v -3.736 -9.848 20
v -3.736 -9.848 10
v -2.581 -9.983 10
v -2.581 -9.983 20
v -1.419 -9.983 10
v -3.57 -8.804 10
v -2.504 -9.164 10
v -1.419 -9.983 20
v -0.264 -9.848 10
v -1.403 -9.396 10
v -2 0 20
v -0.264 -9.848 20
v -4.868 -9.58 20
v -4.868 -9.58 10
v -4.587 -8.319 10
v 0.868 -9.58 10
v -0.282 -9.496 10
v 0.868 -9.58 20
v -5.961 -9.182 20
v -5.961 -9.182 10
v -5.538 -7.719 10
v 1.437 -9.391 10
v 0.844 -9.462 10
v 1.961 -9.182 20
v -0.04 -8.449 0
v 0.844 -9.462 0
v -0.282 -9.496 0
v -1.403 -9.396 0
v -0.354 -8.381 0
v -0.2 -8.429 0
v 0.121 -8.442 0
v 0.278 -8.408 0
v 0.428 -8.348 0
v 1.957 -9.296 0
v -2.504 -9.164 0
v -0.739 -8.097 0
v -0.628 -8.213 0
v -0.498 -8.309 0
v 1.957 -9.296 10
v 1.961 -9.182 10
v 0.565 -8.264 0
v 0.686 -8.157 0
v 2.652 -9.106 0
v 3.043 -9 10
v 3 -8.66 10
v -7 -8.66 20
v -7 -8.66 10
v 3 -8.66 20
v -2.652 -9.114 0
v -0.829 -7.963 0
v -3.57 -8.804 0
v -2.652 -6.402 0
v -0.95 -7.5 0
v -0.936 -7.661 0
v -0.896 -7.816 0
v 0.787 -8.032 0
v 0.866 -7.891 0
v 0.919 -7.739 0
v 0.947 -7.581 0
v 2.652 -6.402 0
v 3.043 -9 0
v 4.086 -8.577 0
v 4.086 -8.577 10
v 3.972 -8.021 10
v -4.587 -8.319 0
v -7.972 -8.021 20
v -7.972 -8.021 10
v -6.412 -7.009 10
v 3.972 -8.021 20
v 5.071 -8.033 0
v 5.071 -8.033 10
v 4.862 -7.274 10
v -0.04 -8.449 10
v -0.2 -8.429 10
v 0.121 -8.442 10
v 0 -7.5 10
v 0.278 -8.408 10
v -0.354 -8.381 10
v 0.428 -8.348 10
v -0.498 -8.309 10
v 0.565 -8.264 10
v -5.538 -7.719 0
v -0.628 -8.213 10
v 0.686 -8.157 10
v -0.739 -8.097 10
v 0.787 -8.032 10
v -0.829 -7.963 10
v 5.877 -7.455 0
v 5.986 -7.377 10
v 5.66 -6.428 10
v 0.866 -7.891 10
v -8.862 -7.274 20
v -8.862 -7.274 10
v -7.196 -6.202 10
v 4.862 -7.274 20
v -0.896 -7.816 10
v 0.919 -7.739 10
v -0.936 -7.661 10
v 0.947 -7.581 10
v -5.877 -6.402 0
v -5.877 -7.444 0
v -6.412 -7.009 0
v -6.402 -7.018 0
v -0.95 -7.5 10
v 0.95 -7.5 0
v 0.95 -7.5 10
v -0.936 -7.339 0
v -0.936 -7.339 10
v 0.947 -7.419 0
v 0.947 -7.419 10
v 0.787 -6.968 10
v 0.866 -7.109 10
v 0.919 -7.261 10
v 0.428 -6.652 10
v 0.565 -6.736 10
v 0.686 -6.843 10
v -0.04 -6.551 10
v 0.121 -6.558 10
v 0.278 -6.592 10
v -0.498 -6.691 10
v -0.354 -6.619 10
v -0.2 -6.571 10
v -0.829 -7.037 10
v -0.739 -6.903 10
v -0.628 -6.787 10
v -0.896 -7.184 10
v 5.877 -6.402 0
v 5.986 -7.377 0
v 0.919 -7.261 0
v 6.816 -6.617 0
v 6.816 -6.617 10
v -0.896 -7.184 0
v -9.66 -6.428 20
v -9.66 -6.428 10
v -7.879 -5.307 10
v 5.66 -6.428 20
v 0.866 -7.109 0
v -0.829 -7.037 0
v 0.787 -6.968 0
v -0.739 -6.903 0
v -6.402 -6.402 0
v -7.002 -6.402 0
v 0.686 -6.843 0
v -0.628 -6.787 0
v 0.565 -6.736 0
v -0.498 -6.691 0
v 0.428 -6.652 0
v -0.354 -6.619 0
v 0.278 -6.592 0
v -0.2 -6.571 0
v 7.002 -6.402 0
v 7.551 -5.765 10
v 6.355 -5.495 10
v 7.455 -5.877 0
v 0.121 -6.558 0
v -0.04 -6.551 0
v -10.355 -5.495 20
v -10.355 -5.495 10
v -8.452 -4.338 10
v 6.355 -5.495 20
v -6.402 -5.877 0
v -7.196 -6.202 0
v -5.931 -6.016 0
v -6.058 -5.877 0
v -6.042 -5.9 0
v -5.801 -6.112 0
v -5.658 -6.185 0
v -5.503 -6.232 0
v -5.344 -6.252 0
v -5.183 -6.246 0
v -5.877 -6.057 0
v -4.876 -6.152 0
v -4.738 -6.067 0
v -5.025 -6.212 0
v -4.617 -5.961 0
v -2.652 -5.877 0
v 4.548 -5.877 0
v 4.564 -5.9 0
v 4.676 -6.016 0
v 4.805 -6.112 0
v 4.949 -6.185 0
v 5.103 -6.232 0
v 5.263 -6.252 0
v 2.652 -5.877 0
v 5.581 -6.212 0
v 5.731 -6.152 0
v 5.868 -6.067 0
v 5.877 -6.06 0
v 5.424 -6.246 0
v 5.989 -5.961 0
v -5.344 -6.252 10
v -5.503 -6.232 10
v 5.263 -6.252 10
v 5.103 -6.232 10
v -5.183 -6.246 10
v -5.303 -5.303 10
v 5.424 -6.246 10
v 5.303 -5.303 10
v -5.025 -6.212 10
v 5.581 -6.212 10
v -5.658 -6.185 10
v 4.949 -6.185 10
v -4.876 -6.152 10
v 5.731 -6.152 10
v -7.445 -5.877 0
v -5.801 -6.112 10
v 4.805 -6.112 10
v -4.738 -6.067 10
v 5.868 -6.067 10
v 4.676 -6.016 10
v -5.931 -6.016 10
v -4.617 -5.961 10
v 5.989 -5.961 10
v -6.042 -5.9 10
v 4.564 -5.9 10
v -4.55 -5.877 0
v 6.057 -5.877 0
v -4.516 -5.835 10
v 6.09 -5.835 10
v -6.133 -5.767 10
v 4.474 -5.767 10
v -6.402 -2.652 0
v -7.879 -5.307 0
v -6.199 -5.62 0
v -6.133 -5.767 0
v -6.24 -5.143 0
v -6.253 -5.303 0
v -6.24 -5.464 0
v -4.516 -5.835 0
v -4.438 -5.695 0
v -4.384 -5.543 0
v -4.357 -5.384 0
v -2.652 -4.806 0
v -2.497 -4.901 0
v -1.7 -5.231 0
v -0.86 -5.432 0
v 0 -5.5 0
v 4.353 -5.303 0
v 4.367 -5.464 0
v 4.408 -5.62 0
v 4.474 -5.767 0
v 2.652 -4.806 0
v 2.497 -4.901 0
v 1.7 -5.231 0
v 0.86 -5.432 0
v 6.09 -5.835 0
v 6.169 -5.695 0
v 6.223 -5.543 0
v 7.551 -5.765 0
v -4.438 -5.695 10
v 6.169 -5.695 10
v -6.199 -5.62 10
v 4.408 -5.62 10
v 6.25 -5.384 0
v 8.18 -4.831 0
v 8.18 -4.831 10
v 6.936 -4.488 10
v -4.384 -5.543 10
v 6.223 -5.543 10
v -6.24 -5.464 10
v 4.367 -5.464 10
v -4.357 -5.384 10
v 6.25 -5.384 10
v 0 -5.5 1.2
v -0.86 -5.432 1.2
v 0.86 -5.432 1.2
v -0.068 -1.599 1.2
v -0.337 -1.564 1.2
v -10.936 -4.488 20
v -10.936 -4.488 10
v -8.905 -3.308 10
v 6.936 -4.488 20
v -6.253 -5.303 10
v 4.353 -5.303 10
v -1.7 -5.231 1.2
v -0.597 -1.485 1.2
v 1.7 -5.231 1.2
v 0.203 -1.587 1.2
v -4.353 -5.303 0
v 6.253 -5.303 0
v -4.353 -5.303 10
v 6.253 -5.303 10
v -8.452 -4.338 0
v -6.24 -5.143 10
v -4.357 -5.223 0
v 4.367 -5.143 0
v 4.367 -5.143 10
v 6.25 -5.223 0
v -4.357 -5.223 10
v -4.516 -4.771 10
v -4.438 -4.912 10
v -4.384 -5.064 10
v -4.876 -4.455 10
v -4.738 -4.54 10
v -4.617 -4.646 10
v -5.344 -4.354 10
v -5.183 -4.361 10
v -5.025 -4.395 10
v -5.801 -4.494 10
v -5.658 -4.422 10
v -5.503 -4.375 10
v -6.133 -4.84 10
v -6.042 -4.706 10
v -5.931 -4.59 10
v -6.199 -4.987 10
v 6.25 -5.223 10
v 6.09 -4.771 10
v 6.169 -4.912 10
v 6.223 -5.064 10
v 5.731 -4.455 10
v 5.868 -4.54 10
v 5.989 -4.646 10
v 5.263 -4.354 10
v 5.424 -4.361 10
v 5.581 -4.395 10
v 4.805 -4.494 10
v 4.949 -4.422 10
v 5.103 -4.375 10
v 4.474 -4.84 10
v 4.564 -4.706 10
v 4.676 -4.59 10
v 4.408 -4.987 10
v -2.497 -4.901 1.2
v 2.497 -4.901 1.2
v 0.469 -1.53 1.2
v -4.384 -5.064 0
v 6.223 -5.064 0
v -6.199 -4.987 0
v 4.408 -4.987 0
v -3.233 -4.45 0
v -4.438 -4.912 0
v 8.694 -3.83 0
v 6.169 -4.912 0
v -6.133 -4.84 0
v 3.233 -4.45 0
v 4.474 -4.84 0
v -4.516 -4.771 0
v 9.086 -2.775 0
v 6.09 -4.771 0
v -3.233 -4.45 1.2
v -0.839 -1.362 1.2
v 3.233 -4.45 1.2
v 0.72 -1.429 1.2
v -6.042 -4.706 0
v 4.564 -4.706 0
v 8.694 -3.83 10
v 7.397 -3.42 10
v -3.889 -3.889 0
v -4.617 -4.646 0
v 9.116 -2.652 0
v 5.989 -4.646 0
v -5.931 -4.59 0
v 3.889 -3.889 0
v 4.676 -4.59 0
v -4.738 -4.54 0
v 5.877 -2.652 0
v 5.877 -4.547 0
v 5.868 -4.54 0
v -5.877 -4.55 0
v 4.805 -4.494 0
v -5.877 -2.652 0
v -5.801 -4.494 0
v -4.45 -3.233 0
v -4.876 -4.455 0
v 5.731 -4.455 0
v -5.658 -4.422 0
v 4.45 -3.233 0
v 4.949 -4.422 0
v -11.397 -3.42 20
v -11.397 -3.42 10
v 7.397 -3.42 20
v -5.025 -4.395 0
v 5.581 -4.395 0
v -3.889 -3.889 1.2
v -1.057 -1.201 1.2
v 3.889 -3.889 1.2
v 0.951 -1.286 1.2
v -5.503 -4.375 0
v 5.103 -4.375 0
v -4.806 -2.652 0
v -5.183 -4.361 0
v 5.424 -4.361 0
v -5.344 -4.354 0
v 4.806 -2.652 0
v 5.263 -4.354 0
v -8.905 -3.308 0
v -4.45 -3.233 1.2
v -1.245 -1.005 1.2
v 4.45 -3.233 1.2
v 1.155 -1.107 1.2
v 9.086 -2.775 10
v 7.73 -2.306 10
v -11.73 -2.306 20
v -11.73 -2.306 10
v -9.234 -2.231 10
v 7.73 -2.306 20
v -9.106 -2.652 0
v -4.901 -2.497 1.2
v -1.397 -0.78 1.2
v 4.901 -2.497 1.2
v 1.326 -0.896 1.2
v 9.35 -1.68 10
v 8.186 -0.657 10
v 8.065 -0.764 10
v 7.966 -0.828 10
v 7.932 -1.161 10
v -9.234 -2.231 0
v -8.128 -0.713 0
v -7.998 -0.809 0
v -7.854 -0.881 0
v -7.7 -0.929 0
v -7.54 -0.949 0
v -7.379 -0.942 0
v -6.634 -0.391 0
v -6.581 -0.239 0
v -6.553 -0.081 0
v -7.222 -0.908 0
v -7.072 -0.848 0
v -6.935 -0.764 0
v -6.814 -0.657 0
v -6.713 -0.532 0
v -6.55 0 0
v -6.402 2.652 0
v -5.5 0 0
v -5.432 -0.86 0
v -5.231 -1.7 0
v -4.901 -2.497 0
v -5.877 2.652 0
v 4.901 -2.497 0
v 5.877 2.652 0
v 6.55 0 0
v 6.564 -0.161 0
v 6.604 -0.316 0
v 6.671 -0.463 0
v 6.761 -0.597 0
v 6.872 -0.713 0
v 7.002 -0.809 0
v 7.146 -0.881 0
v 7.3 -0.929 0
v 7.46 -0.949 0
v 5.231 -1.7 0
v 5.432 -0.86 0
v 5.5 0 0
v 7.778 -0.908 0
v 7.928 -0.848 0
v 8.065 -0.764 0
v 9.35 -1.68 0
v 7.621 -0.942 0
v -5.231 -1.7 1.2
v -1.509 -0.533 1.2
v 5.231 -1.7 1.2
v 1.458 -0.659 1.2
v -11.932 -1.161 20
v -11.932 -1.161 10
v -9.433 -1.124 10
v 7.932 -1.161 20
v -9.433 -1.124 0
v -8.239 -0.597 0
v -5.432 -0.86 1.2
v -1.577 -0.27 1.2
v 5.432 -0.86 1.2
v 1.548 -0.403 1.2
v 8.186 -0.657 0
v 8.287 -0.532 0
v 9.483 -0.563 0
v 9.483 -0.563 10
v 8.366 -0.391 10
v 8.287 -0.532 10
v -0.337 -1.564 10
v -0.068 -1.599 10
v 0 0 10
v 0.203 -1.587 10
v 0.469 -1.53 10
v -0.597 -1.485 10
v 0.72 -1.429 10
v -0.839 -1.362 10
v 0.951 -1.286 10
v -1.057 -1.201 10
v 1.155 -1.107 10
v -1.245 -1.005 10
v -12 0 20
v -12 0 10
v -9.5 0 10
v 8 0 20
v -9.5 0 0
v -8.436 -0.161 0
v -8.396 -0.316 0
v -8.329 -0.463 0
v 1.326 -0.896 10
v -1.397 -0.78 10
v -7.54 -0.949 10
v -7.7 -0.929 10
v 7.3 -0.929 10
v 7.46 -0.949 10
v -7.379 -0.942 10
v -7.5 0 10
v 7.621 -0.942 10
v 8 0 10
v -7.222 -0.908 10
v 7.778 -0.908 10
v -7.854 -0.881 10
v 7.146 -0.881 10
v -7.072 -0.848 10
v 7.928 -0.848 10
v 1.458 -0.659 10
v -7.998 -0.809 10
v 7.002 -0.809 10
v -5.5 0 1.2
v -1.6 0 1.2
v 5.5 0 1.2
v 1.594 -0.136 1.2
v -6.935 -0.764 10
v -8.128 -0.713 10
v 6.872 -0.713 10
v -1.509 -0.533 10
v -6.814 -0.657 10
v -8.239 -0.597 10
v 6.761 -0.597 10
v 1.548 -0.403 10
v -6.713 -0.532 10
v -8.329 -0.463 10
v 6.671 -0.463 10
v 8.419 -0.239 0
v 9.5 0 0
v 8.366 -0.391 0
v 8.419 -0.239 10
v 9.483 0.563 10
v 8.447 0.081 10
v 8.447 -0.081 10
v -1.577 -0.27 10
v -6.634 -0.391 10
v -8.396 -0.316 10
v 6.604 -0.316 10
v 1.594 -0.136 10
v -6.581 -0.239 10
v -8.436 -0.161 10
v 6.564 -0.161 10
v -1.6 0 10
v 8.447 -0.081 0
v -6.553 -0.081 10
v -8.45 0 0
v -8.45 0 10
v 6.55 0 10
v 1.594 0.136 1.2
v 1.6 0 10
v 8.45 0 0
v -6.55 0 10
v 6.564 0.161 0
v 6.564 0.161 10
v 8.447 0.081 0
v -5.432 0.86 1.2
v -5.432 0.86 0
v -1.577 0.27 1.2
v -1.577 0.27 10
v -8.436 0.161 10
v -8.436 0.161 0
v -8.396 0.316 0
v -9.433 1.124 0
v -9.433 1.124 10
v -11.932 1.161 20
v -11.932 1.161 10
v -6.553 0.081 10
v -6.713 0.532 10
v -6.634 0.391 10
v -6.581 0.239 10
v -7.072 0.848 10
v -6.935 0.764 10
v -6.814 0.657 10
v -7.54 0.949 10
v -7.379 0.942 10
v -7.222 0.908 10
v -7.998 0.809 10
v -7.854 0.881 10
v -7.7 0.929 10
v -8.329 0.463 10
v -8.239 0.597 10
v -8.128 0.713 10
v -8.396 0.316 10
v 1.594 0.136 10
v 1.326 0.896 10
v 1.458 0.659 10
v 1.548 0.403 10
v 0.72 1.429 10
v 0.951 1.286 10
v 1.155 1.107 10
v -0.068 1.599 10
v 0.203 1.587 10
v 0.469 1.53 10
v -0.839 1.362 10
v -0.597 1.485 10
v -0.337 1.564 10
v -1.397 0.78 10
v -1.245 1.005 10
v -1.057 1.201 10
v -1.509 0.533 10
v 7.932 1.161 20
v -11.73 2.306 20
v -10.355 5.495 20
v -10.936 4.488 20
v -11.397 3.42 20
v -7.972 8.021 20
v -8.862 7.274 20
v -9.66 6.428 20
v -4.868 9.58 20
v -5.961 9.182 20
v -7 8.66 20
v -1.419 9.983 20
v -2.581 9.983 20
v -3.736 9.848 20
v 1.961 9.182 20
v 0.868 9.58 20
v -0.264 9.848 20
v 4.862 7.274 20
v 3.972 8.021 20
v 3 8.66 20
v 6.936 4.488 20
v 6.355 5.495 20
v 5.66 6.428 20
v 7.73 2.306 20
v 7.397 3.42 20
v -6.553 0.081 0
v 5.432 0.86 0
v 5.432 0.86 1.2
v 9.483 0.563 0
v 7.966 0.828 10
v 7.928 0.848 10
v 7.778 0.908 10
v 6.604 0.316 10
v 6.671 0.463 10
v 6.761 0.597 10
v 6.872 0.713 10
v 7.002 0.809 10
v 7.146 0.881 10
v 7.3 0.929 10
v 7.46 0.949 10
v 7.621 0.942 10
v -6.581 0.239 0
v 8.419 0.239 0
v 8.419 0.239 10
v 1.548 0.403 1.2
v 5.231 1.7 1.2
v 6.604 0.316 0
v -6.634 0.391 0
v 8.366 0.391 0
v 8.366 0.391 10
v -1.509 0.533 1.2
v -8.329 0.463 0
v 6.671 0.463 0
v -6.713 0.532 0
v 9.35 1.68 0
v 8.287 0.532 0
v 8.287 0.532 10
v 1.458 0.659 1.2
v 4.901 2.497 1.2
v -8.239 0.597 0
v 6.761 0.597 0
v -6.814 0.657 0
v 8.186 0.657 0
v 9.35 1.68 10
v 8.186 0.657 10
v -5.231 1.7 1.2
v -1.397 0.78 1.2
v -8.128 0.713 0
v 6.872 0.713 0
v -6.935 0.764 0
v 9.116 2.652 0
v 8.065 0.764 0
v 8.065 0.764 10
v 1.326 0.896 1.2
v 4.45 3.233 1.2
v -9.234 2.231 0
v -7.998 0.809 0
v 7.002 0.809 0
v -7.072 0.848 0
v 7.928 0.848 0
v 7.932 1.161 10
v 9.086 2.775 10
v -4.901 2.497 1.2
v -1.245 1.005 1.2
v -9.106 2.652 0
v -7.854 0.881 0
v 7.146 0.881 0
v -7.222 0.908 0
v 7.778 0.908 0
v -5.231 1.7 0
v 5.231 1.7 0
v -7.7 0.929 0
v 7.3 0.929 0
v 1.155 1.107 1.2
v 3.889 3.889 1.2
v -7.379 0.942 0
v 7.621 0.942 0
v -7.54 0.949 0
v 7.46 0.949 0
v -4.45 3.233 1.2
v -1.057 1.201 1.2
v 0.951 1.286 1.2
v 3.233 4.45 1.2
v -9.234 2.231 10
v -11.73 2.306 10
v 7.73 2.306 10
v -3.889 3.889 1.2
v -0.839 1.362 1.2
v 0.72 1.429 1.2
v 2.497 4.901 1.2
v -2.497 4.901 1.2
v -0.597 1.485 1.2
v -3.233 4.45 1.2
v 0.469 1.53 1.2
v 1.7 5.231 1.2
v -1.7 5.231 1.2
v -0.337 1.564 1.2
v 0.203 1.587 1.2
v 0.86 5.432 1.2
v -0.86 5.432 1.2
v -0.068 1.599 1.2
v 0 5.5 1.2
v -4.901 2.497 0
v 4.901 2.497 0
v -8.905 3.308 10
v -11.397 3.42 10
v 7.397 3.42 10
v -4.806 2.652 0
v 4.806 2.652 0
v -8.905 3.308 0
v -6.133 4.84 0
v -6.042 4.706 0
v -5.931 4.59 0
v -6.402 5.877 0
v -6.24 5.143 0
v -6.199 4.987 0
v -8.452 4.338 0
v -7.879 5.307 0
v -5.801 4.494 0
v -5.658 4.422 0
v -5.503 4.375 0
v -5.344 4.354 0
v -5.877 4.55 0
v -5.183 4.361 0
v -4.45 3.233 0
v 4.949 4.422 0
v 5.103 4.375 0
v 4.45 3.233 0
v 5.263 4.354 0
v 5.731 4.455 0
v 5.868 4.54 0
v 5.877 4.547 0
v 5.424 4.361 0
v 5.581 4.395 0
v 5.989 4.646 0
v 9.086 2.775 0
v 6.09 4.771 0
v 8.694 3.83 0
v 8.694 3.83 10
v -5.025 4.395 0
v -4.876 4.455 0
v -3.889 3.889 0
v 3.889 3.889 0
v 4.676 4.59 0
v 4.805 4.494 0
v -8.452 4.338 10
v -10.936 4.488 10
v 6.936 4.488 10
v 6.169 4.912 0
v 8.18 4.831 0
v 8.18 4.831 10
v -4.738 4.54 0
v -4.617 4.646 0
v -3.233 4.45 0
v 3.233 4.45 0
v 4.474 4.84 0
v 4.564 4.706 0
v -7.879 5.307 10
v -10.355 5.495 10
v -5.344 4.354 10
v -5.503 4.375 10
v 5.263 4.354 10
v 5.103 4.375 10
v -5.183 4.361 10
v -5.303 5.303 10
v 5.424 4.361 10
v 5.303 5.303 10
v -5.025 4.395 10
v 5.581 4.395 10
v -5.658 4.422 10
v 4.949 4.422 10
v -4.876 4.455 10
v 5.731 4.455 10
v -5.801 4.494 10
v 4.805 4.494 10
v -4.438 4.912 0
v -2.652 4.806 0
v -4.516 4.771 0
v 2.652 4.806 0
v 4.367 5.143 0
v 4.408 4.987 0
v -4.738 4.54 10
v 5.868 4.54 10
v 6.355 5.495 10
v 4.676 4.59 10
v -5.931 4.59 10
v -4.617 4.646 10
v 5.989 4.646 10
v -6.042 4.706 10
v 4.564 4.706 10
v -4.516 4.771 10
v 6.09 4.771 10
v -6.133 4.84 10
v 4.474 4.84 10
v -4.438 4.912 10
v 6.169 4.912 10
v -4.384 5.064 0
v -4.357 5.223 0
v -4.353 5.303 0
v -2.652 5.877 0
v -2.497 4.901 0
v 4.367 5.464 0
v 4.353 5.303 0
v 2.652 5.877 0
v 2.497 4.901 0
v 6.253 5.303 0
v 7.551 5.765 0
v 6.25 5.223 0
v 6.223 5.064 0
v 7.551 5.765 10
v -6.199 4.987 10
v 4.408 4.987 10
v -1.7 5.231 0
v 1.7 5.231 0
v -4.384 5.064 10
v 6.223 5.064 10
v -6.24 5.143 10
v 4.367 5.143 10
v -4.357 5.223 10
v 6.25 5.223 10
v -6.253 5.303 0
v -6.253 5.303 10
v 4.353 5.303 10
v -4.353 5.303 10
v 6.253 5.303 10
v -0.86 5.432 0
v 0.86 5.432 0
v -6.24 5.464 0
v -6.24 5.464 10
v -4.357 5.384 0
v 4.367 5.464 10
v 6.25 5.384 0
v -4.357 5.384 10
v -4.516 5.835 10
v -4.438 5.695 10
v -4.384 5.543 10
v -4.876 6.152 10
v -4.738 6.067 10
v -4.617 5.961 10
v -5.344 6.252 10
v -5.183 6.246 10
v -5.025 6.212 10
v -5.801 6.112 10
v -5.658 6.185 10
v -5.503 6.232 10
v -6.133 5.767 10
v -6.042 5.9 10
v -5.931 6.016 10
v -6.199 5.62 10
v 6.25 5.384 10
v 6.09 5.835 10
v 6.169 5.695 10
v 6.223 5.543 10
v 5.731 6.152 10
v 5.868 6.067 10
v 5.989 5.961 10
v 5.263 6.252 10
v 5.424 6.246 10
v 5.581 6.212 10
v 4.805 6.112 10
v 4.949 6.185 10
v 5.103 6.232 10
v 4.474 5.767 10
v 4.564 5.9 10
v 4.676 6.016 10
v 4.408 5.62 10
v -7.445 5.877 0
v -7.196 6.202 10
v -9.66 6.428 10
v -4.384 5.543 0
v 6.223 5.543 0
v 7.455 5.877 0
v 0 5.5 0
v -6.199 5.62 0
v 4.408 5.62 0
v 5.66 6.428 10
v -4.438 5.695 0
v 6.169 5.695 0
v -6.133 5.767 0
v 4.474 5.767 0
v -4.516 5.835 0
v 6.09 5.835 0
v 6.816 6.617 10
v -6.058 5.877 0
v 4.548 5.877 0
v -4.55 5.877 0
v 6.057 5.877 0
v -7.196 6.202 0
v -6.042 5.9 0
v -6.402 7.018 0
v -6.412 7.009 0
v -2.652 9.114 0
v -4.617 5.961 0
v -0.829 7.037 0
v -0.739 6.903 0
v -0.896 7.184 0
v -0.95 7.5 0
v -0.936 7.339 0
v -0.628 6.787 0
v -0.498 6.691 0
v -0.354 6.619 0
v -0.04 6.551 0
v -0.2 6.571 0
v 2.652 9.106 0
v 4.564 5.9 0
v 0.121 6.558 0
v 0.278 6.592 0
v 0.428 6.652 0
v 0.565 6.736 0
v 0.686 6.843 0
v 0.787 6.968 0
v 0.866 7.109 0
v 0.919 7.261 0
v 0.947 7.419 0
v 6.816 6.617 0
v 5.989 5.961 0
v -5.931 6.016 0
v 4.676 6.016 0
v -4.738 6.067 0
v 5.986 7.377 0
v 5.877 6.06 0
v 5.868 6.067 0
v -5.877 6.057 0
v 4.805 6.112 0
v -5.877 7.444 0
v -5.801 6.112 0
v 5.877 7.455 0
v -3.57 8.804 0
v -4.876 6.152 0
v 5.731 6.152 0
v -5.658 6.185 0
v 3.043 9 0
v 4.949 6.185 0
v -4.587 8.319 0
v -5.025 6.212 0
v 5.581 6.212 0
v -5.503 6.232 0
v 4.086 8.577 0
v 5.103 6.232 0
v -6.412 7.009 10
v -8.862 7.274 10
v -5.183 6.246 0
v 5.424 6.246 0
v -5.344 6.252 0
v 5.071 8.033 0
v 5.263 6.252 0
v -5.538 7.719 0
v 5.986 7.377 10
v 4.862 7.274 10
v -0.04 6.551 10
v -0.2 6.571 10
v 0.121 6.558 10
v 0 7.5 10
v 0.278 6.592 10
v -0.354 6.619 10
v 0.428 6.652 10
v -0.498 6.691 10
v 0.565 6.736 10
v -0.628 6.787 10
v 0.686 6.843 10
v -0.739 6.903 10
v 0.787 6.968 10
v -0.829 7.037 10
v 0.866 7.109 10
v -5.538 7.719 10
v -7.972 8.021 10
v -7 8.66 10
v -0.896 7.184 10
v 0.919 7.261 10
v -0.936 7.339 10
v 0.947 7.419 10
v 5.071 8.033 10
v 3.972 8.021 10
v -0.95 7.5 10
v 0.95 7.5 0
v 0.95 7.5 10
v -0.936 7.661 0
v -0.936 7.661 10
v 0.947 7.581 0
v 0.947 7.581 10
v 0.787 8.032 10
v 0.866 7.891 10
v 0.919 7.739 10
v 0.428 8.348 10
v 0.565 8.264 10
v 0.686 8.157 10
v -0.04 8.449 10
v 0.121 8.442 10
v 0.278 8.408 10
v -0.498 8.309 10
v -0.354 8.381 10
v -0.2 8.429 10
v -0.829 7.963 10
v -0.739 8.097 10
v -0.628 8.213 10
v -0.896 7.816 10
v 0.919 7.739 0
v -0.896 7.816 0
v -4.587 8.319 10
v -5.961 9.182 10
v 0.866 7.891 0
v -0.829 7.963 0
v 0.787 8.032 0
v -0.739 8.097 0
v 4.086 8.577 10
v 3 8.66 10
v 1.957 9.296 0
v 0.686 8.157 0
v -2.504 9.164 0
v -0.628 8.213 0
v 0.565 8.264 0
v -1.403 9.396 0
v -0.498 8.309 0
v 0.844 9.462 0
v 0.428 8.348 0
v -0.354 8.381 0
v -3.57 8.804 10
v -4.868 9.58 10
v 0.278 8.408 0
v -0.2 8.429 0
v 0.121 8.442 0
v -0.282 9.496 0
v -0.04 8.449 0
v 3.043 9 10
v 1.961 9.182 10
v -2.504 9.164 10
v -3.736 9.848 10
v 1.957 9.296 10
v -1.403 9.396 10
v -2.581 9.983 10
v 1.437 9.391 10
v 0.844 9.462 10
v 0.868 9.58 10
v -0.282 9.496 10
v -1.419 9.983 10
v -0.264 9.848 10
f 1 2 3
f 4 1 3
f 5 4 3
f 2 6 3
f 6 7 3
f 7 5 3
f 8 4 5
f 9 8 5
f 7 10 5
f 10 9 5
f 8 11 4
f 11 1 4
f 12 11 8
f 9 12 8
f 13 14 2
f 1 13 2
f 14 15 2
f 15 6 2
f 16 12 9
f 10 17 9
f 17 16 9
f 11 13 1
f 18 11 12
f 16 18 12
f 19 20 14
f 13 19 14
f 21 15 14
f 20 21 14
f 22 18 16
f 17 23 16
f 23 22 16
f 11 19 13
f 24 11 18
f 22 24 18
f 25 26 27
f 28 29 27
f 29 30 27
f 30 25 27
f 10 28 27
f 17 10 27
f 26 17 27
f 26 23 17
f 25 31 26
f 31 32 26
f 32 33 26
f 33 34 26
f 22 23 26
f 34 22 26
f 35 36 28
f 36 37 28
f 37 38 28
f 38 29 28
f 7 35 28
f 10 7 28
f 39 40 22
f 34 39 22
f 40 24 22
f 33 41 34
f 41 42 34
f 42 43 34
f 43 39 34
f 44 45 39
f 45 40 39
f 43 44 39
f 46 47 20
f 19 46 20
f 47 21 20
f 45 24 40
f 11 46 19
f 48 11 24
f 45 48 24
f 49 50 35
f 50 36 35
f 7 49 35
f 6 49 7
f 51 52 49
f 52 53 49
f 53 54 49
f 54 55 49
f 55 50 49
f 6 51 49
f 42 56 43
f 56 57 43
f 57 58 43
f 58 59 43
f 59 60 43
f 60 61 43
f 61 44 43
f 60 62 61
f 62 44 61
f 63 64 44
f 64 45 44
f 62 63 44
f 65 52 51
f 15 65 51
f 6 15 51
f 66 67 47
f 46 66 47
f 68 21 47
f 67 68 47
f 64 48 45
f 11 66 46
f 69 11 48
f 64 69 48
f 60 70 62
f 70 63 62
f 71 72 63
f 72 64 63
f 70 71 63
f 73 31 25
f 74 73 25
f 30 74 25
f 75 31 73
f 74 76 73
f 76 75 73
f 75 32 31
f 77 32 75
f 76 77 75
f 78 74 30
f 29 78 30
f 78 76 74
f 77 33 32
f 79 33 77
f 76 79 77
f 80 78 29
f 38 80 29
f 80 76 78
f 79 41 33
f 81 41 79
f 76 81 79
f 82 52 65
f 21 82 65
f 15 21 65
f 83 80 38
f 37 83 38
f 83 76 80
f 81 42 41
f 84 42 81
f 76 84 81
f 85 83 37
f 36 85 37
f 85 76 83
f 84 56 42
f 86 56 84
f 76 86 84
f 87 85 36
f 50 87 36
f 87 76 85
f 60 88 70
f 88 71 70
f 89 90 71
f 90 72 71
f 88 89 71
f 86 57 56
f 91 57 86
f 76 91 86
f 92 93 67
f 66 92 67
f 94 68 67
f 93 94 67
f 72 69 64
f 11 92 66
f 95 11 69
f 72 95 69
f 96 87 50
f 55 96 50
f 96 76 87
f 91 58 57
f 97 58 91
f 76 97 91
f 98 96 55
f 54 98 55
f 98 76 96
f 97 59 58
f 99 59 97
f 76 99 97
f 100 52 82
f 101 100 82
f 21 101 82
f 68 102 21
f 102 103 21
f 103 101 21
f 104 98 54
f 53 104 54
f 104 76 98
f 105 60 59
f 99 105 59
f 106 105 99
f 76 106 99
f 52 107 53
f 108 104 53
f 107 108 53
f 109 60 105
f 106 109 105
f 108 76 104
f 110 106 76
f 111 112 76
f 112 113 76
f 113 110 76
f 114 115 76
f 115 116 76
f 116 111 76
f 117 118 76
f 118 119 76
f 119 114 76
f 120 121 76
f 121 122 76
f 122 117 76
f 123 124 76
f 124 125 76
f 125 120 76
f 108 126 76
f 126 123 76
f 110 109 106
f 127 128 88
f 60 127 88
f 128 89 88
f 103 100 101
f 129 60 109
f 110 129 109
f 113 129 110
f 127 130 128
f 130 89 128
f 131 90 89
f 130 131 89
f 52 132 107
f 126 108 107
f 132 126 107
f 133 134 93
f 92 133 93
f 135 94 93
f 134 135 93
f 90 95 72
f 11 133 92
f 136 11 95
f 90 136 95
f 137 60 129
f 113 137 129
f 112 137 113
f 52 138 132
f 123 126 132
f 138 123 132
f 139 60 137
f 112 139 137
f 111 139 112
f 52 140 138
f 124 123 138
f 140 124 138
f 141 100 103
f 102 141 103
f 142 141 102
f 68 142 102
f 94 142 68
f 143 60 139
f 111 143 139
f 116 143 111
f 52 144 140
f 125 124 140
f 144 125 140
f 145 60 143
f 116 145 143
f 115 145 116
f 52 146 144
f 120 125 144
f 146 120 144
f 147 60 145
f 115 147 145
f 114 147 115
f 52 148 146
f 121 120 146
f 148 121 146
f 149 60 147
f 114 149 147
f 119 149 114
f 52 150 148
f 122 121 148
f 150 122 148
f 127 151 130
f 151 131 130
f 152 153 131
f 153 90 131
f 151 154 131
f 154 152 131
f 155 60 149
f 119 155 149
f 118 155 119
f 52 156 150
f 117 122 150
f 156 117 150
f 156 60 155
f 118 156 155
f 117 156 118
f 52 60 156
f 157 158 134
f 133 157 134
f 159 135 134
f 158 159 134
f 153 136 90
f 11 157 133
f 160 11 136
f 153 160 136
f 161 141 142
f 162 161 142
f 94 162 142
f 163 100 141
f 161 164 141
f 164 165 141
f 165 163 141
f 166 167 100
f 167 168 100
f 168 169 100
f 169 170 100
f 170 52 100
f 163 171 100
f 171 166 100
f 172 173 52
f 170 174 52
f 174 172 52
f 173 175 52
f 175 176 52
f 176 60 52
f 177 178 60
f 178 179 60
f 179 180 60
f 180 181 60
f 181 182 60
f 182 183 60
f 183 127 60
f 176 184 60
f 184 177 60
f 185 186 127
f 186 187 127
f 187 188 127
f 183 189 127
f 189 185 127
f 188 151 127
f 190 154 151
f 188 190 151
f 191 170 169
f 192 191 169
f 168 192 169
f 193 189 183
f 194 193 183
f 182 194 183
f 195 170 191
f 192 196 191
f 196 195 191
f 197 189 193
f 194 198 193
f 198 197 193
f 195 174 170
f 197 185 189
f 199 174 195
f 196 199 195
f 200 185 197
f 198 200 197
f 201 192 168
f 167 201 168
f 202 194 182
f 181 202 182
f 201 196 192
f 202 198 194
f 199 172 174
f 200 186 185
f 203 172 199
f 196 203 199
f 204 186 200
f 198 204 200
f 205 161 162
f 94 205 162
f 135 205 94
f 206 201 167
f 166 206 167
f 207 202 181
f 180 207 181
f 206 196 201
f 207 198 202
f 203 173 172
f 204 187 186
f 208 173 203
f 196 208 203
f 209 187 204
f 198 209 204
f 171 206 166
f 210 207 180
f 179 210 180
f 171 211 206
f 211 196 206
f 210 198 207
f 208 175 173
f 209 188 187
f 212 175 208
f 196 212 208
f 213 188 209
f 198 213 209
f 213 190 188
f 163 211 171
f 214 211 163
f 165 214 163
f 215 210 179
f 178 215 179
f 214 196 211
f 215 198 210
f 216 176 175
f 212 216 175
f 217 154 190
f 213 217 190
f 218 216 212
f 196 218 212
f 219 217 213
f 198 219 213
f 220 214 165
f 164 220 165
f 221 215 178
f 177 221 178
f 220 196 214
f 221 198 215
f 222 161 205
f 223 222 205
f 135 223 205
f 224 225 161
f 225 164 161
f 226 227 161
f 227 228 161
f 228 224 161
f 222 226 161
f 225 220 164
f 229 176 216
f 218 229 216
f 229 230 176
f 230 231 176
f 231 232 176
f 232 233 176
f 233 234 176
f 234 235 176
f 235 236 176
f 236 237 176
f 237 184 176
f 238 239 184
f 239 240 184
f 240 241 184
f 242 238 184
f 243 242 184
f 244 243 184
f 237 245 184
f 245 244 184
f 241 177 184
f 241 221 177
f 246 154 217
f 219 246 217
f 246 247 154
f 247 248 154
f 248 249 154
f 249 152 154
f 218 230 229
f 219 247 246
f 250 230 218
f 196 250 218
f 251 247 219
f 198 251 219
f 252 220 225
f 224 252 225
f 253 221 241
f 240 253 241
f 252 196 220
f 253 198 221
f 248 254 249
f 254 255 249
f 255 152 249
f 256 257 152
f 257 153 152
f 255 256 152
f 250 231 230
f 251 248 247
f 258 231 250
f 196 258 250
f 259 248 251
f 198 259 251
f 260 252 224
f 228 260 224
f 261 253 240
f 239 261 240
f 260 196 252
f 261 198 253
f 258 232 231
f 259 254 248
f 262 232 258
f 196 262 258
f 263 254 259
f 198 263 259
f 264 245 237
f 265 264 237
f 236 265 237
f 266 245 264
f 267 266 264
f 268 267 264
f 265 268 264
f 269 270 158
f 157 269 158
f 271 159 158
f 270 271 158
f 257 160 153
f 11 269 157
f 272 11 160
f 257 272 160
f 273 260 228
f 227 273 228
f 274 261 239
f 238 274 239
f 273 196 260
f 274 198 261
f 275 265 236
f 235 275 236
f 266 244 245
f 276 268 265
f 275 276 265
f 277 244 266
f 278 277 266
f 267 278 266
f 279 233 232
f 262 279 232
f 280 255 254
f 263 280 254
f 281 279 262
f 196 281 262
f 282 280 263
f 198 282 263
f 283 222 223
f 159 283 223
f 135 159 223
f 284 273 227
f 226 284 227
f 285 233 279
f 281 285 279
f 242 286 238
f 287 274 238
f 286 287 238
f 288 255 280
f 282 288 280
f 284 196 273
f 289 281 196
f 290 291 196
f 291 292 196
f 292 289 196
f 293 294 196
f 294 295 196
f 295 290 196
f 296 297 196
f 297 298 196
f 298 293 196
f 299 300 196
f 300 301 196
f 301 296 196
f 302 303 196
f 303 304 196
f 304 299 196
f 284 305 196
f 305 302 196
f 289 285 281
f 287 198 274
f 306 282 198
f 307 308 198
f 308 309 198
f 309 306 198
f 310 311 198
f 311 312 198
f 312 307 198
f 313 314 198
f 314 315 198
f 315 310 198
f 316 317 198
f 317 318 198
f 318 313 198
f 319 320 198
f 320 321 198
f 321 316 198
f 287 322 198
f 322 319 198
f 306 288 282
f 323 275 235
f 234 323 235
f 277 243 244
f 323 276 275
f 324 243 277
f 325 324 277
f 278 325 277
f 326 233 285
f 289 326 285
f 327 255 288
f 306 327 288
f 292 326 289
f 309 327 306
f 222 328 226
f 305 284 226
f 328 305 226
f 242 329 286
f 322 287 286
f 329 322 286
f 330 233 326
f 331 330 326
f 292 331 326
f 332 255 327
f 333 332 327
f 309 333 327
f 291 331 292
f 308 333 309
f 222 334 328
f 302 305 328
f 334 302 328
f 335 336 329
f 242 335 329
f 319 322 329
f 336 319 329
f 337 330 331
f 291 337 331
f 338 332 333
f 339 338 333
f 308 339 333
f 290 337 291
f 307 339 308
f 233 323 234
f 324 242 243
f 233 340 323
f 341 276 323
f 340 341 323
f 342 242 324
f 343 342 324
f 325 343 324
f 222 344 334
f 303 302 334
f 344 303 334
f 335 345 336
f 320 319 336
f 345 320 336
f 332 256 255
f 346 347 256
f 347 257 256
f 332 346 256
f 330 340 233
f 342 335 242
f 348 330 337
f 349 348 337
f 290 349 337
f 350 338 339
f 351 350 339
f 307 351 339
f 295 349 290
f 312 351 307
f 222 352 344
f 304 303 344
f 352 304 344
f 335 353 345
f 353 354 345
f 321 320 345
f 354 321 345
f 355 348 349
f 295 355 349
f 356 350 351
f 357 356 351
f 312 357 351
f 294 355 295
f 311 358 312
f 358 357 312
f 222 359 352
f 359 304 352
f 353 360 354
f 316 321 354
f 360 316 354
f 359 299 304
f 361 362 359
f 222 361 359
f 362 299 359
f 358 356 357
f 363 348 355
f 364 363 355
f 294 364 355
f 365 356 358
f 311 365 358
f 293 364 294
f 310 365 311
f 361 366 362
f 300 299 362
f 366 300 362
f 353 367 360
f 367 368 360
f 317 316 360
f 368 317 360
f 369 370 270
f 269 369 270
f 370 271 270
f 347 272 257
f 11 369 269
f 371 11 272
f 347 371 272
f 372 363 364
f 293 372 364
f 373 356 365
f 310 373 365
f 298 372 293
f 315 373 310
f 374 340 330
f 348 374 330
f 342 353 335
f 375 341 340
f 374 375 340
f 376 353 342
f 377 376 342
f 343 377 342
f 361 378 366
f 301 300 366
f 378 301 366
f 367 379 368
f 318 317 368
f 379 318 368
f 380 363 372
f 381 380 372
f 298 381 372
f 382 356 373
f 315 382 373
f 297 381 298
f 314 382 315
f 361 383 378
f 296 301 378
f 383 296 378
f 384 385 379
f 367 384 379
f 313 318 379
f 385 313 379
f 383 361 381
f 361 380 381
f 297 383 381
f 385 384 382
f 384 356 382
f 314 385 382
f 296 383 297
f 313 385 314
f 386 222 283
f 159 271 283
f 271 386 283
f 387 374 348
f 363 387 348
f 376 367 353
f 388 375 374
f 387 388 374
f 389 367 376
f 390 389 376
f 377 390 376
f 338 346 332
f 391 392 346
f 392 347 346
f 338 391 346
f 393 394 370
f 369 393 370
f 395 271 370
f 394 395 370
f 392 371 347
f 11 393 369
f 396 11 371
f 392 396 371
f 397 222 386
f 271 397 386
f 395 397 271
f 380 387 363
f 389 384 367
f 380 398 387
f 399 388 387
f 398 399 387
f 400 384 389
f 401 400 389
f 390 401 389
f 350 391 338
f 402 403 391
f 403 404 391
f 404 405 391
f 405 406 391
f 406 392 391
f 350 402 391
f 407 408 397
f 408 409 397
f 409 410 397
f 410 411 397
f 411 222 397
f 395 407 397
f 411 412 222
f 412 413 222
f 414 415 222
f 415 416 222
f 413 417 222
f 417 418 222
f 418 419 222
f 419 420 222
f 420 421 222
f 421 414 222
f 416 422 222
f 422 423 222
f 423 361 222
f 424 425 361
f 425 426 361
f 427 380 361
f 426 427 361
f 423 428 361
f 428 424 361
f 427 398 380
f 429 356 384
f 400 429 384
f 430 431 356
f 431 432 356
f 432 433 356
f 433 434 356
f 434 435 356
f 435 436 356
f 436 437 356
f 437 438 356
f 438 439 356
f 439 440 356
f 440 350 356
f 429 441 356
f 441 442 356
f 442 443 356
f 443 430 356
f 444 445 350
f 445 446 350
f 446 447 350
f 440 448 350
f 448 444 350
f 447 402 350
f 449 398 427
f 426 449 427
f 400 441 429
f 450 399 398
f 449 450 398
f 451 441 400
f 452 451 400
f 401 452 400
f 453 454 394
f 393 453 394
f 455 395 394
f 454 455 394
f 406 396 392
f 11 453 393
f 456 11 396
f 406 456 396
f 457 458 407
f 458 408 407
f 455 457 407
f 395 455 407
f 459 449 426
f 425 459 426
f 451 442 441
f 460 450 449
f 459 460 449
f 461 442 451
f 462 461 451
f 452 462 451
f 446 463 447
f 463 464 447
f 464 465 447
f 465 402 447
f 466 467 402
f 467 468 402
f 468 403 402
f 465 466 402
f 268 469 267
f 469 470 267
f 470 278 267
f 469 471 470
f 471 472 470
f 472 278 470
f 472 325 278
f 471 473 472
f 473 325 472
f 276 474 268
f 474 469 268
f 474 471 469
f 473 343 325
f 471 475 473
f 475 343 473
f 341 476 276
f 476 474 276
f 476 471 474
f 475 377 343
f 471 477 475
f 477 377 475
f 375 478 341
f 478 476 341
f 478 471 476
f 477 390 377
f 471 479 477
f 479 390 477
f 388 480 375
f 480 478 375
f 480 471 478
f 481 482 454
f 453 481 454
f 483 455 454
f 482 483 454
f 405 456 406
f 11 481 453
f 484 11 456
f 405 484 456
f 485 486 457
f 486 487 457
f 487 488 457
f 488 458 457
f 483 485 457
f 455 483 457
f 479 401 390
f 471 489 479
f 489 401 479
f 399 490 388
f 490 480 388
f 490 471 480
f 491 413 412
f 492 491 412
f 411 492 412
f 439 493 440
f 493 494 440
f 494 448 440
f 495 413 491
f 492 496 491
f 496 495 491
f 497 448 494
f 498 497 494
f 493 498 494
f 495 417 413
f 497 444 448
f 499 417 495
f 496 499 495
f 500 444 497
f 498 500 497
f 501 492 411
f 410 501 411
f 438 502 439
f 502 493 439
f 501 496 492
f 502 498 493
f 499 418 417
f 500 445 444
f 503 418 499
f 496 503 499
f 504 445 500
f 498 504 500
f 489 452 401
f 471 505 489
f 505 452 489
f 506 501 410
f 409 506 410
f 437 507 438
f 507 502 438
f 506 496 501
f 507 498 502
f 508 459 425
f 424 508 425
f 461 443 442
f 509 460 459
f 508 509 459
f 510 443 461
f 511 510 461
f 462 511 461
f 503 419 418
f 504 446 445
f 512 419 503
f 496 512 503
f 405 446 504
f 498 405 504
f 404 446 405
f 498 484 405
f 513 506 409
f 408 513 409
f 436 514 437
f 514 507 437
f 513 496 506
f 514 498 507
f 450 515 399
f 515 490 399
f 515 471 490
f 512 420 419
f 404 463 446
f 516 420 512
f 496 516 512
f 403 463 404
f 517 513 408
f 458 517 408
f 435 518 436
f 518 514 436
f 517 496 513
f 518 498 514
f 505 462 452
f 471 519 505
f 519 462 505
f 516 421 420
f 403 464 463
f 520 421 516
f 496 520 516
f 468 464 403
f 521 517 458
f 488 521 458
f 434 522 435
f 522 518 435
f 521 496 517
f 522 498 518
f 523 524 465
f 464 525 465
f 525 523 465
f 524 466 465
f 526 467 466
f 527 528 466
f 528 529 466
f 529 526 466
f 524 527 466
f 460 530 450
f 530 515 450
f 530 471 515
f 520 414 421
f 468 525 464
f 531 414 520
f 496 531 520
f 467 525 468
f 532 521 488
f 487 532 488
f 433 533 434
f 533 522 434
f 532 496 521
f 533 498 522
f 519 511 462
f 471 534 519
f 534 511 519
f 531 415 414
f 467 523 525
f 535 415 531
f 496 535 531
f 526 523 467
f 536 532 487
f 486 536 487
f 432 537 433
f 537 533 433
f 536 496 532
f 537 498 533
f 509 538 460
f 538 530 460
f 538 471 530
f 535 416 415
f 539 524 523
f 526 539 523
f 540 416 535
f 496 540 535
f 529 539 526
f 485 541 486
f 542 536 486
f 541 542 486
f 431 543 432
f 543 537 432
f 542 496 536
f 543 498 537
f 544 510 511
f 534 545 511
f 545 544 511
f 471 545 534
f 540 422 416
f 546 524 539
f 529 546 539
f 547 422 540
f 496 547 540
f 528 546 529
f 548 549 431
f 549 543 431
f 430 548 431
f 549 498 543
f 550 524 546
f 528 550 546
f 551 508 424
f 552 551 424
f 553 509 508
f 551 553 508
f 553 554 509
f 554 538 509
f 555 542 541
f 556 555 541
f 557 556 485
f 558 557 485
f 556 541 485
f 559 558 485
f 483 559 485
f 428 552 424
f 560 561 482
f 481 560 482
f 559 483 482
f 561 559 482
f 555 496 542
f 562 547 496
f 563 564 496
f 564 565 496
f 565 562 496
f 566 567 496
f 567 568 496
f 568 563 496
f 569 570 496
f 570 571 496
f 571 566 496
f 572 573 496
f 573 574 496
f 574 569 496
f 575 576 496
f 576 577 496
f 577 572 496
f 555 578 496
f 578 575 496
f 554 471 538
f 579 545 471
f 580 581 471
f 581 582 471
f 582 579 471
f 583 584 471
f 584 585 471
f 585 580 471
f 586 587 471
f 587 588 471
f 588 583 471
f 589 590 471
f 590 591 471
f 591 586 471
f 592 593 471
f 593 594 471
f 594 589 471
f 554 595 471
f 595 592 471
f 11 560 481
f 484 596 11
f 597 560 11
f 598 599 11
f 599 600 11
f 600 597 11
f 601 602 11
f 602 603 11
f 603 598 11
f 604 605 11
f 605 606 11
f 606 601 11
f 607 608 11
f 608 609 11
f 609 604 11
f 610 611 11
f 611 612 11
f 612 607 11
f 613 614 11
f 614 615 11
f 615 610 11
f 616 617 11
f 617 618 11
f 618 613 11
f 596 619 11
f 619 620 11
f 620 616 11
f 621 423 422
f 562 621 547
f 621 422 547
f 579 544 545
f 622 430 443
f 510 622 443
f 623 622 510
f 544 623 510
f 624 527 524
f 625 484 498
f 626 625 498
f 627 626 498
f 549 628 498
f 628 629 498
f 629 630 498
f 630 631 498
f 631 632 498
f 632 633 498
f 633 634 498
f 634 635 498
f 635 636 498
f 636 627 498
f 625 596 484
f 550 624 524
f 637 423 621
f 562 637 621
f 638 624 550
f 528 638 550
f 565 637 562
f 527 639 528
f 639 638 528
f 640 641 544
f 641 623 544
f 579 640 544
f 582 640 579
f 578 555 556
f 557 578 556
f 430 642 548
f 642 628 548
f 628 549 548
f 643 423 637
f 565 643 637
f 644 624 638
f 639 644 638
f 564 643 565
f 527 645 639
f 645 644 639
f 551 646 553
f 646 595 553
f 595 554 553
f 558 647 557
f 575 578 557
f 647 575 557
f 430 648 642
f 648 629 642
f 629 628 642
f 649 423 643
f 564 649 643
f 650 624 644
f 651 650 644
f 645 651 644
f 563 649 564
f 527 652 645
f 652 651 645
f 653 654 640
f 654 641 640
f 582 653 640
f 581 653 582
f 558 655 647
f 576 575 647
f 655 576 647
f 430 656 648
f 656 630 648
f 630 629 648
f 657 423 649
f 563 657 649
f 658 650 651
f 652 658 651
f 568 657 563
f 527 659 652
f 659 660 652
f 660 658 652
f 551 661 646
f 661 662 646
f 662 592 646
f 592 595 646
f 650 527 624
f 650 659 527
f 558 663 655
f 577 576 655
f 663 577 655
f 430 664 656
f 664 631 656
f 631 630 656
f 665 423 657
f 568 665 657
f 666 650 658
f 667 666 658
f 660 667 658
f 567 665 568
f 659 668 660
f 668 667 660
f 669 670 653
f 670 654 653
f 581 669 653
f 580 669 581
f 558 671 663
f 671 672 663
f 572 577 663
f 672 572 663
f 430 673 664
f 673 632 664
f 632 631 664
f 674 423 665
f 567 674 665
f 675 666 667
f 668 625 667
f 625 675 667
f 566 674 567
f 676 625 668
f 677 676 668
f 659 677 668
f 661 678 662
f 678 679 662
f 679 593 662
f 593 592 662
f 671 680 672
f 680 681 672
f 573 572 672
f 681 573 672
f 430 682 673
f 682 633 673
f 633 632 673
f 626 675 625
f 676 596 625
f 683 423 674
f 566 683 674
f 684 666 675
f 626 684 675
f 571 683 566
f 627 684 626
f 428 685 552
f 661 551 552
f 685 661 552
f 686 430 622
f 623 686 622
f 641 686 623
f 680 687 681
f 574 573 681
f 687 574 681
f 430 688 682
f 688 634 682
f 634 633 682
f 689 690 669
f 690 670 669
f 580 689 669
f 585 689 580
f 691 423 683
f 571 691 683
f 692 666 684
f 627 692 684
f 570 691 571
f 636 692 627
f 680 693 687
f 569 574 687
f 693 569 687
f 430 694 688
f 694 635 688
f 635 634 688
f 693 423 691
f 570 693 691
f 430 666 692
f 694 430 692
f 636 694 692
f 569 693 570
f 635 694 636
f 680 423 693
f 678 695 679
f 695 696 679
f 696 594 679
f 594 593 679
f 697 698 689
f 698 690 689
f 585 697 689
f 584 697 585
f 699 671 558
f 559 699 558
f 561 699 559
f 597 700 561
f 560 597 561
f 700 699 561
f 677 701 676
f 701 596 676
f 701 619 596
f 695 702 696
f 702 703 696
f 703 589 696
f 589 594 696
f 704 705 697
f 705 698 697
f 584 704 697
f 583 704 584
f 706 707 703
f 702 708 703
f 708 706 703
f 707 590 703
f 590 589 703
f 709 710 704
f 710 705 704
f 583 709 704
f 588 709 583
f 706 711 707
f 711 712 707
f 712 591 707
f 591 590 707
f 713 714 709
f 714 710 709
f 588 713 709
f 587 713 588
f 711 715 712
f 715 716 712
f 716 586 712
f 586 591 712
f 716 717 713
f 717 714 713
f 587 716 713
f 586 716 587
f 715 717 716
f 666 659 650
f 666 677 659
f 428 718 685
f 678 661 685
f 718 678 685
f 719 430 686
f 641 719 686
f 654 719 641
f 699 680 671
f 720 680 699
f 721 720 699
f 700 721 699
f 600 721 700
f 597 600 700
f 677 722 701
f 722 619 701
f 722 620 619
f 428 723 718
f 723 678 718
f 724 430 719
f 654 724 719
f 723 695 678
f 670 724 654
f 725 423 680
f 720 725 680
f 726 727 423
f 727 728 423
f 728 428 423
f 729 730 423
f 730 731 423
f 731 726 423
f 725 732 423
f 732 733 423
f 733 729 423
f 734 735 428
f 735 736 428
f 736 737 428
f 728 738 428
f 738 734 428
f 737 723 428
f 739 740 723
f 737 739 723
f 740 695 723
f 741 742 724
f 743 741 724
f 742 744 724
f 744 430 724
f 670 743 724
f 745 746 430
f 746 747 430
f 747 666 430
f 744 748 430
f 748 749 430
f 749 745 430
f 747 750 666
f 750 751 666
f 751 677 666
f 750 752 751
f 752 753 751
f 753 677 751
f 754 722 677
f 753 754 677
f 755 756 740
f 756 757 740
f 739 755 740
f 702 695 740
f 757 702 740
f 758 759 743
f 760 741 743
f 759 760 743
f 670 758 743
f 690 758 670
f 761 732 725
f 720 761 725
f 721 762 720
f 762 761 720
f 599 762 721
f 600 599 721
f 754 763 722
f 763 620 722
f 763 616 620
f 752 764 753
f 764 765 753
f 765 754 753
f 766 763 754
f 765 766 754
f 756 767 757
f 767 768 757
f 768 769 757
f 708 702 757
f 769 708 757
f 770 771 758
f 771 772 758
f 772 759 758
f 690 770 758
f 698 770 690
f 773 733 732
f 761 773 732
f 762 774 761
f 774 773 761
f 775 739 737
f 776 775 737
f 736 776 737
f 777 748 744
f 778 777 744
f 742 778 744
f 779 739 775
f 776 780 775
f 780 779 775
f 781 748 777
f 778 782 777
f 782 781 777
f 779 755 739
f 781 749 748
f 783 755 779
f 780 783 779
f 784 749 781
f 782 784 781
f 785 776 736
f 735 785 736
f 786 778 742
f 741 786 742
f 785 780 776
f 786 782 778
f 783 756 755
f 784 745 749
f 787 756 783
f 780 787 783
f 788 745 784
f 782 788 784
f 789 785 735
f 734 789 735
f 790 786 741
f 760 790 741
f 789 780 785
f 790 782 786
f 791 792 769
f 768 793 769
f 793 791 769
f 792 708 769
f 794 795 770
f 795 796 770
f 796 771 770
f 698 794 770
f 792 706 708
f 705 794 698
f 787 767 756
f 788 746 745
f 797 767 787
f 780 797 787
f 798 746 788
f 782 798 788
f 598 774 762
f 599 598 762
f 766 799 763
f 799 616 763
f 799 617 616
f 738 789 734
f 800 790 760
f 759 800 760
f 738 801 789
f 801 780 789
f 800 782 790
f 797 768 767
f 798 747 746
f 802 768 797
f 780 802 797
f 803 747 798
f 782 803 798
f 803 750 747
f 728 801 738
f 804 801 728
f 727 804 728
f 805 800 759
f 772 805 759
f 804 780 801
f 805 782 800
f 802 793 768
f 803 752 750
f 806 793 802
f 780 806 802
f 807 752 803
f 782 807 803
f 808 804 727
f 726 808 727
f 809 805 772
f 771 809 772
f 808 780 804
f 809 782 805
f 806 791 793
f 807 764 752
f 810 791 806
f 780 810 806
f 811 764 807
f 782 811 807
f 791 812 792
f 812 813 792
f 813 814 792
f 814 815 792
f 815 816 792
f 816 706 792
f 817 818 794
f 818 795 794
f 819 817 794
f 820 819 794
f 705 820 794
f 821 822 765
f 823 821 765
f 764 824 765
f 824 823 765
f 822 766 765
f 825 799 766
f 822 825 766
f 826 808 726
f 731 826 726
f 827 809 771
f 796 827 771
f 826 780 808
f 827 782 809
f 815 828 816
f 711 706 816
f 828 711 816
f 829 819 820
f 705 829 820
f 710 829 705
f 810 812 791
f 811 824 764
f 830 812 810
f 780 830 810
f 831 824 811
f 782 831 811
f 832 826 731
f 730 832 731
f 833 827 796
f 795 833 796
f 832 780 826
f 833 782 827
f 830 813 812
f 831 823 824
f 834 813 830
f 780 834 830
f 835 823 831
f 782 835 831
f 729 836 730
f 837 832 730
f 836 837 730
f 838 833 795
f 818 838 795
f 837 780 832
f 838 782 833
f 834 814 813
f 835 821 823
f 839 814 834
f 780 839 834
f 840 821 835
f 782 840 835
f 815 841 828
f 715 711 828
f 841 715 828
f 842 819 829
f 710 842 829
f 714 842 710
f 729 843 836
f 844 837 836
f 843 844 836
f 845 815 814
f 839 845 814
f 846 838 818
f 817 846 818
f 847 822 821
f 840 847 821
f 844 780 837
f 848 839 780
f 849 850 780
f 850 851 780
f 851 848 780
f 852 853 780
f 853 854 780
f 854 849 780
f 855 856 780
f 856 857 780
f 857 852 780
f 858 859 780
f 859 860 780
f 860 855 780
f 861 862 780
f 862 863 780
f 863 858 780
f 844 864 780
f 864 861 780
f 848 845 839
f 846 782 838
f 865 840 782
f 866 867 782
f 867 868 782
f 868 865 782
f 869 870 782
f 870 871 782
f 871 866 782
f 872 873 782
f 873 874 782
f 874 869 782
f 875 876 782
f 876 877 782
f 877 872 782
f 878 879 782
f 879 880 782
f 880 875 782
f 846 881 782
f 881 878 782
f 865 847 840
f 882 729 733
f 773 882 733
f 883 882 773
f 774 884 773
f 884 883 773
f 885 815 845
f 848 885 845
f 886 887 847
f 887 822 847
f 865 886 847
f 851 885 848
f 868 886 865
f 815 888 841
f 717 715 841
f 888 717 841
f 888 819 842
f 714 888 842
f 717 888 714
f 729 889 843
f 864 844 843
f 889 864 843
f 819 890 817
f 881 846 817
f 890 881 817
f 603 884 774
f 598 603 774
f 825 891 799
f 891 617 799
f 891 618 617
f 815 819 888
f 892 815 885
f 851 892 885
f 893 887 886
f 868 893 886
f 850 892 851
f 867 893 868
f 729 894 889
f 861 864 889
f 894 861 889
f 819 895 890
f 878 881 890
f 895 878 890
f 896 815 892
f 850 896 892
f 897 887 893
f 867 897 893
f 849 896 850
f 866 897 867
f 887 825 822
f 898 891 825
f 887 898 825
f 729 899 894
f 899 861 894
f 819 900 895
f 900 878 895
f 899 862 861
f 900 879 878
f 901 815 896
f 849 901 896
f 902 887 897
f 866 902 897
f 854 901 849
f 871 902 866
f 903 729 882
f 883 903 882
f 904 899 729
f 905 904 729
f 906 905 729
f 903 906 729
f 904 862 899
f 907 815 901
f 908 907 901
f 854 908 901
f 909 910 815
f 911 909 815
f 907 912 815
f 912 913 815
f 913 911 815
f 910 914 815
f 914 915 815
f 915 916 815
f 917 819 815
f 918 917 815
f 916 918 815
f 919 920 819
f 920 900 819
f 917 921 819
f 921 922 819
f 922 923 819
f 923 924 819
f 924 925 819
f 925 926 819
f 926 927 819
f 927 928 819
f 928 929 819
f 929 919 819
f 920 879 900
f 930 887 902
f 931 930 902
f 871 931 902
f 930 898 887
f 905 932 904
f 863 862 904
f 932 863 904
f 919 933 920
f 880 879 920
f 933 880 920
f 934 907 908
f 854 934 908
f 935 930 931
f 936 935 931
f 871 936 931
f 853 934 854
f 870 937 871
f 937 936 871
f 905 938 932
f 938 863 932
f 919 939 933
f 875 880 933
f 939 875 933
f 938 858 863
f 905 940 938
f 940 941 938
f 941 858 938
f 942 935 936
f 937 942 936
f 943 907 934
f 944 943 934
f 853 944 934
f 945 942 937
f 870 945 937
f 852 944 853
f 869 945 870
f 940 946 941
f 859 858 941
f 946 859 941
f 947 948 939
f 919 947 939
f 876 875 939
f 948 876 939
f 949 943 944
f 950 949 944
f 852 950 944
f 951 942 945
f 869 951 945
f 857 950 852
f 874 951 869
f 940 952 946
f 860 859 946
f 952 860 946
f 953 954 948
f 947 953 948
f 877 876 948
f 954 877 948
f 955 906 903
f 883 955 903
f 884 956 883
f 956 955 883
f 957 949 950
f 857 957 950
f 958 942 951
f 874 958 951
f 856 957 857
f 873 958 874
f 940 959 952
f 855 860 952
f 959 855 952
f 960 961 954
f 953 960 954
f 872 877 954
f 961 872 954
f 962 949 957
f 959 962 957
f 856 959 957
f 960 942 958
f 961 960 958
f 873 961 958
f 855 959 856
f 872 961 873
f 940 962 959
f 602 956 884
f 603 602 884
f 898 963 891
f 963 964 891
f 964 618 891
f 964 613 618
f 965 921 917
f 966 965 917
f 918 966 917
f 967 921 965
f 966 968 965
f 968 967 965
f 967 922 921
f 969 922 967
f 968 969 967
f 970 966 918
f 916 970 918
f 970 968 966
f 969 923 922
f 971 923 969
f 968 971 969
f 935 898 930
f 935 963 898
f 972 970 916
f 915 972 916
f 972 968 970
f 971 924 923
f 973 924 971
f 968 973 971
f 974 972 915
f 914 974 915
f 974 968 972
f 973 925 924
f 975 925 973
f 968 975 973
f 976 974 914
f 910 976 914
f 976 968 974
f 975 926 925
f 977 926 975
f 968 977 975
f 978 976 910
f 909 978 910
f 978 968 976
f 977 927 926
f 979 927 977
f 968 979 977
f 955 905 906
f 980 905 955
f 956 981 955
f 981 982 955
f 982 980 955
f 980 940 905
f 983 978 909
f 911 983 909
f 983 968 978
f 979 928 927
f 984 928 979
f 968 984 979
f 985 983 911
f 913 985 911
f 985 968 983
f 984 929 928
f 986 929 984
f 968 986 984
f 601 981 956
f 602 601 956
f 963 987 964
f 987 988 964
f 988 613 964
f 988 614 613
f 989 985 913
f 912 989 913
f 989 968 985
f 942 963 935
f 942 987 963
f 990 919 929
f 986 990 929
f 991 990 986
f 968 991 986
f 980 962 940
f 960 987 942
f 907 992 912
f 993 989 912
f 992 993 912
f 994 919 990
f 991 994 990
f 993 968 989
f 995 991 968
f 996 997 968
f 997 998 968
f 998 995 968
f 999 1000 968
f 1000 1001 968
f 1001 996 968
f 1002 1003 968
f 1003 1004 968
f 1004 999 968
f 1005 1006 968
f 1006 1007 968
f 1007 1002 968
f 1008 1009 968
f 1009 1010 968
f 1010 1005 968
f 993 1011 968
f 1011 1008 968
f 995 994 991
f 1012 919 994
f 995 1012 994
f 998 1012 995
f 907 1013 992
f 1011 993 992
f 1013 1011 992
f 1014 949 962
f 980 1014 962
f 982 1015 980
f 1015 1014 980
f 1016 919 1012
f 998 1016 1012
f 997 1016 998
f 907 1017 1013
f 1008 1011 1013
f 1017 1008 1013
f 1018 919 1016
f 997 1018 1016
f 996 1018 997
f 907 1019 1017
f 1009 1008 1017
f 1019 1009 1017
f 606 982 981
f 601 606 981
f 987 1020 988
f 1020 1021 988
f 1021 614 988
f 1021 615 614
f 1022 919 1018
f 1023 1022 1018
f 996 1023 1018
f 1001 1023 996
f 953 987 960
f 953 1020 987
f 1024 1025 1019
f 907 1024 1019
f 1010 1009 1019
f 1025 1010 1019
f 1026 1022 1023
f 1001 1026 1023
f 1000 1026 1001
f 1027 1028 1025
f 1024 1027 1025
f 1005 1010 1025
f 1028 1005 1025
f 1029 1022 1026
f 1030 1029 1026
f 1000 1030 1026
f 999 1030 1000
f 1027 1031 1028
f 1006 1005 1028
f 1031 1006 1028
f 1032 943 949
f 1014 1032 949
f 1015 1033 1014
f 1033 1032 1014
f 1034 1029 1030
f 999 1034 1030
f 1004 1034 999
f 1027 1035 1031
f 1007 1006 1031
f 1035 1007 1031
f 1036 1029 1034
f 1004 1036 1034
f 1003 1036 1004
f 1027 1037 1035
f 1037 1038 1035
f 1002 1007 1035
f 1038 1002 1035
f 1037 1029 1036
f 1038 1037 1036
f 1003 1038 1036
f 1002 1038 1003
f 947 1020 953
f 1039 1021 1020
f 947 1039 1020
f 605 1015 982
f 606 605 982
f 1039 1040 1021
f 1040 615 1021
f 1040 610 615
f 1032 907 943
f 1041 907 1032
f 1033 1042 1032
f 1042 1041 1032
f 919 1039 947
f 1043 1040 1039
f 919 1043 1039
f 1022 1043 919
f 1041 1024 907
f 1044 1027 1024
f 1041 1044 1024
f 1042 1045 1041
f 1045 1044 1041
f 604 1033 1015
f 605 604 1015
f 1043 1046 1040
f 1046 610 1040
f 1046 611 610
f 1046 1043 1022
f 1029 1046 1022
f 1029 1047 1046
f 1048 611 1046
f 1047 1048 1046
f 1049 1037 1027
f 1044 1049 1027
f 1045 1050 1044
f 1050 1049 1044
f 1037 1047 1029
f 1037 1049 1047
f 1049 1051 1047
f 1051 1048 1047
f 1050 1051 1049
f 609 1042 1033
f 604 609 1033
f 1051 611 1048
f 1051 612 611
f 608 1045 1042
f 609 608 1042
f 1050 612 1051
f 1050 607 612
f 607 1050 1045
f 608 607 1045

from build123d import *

# Parameters (mm, degrees)
SKETCH1_R           = 9.5
SKETCH1_R_2         = 1.6
SKETCH1_R_3         = 0.95
BOSS_EXTRUDE1_DEPTH = 10
SKETCH2_R           = 10
BOSS_EXTRUDE2_DEPTH = 10
SKETCH5_R           = 5.5
CUT_EXTRUDE1_DEPTH  = 1.2


with BuildPart() as part:
    # Sketch1 → Boss-Extrude1 (new body)
    with BuildSketch(Plane.XY):
        Circle(SKETCH1_R)
        Circle(SKETCH1_R_2, mode=Mode.SUBTRACT)
        with Locations((-7.5, 0)):
            Circle(SKETCH1_R_3, mode=Mode.SUBTRACT)
        with Locations((-5.303300859, 5.303300859)):
            Circle(SKETCH1_R_3, mode=Mode.SUBTRACT)
        with Locations((0, 7.5)):
            Circle(SKETCH1_R_3, mode=Mode.SUBTRACT)
        with Locations((5.303300859, 5.303300859)):
            Circle(SKETCH1_R_3, mode=Mode.SUBTRACT)
        with Locations((7.5, 0)):
            Circle(SKETCH1_R_3, mode=Mode.SUBTRACT)
        with Locations((5.303300859, -5.303300859)):
            Circle(SKETCH1_R_3, mode=Mode.SUBTRACT)
        with Locations((0, -7.5)):
            Circle(SKETCH1_R_3, mode=Mode.SUBTRACT)
        with Locations((-5.303300859, -5.303300859)):
            Circle(SKETCH1_R_3, mode=Mode.SUBTRACT)
    extrude(amount=BOSS_EXTRUDE1_DEPTH)

    # Sketch2 → Boss-Extrude2 (add)
    with BuildSketch(Plane.XY.offset(10)):
        with Locations(Location((-2, 0, 0), (0, 0, 69.894490212))):
            Circle(SKETCH2_R)
    extrude(amount=BOSS_EXTRUDE2_DEPTH)

    # Sketch5 → Cut-Extrude1 (cut)
    with BuildSketch(Plane(origin=(0, 0, 0), x_dir=(-1, 0, 0), z_dir=(0, 0, -1))):
        Circle(SKETCH5_R)
    extrude(amount=-CUT_EXTRUDE1_DEPTH, mode=Mode.SUBTRACT)


solid = part.part
